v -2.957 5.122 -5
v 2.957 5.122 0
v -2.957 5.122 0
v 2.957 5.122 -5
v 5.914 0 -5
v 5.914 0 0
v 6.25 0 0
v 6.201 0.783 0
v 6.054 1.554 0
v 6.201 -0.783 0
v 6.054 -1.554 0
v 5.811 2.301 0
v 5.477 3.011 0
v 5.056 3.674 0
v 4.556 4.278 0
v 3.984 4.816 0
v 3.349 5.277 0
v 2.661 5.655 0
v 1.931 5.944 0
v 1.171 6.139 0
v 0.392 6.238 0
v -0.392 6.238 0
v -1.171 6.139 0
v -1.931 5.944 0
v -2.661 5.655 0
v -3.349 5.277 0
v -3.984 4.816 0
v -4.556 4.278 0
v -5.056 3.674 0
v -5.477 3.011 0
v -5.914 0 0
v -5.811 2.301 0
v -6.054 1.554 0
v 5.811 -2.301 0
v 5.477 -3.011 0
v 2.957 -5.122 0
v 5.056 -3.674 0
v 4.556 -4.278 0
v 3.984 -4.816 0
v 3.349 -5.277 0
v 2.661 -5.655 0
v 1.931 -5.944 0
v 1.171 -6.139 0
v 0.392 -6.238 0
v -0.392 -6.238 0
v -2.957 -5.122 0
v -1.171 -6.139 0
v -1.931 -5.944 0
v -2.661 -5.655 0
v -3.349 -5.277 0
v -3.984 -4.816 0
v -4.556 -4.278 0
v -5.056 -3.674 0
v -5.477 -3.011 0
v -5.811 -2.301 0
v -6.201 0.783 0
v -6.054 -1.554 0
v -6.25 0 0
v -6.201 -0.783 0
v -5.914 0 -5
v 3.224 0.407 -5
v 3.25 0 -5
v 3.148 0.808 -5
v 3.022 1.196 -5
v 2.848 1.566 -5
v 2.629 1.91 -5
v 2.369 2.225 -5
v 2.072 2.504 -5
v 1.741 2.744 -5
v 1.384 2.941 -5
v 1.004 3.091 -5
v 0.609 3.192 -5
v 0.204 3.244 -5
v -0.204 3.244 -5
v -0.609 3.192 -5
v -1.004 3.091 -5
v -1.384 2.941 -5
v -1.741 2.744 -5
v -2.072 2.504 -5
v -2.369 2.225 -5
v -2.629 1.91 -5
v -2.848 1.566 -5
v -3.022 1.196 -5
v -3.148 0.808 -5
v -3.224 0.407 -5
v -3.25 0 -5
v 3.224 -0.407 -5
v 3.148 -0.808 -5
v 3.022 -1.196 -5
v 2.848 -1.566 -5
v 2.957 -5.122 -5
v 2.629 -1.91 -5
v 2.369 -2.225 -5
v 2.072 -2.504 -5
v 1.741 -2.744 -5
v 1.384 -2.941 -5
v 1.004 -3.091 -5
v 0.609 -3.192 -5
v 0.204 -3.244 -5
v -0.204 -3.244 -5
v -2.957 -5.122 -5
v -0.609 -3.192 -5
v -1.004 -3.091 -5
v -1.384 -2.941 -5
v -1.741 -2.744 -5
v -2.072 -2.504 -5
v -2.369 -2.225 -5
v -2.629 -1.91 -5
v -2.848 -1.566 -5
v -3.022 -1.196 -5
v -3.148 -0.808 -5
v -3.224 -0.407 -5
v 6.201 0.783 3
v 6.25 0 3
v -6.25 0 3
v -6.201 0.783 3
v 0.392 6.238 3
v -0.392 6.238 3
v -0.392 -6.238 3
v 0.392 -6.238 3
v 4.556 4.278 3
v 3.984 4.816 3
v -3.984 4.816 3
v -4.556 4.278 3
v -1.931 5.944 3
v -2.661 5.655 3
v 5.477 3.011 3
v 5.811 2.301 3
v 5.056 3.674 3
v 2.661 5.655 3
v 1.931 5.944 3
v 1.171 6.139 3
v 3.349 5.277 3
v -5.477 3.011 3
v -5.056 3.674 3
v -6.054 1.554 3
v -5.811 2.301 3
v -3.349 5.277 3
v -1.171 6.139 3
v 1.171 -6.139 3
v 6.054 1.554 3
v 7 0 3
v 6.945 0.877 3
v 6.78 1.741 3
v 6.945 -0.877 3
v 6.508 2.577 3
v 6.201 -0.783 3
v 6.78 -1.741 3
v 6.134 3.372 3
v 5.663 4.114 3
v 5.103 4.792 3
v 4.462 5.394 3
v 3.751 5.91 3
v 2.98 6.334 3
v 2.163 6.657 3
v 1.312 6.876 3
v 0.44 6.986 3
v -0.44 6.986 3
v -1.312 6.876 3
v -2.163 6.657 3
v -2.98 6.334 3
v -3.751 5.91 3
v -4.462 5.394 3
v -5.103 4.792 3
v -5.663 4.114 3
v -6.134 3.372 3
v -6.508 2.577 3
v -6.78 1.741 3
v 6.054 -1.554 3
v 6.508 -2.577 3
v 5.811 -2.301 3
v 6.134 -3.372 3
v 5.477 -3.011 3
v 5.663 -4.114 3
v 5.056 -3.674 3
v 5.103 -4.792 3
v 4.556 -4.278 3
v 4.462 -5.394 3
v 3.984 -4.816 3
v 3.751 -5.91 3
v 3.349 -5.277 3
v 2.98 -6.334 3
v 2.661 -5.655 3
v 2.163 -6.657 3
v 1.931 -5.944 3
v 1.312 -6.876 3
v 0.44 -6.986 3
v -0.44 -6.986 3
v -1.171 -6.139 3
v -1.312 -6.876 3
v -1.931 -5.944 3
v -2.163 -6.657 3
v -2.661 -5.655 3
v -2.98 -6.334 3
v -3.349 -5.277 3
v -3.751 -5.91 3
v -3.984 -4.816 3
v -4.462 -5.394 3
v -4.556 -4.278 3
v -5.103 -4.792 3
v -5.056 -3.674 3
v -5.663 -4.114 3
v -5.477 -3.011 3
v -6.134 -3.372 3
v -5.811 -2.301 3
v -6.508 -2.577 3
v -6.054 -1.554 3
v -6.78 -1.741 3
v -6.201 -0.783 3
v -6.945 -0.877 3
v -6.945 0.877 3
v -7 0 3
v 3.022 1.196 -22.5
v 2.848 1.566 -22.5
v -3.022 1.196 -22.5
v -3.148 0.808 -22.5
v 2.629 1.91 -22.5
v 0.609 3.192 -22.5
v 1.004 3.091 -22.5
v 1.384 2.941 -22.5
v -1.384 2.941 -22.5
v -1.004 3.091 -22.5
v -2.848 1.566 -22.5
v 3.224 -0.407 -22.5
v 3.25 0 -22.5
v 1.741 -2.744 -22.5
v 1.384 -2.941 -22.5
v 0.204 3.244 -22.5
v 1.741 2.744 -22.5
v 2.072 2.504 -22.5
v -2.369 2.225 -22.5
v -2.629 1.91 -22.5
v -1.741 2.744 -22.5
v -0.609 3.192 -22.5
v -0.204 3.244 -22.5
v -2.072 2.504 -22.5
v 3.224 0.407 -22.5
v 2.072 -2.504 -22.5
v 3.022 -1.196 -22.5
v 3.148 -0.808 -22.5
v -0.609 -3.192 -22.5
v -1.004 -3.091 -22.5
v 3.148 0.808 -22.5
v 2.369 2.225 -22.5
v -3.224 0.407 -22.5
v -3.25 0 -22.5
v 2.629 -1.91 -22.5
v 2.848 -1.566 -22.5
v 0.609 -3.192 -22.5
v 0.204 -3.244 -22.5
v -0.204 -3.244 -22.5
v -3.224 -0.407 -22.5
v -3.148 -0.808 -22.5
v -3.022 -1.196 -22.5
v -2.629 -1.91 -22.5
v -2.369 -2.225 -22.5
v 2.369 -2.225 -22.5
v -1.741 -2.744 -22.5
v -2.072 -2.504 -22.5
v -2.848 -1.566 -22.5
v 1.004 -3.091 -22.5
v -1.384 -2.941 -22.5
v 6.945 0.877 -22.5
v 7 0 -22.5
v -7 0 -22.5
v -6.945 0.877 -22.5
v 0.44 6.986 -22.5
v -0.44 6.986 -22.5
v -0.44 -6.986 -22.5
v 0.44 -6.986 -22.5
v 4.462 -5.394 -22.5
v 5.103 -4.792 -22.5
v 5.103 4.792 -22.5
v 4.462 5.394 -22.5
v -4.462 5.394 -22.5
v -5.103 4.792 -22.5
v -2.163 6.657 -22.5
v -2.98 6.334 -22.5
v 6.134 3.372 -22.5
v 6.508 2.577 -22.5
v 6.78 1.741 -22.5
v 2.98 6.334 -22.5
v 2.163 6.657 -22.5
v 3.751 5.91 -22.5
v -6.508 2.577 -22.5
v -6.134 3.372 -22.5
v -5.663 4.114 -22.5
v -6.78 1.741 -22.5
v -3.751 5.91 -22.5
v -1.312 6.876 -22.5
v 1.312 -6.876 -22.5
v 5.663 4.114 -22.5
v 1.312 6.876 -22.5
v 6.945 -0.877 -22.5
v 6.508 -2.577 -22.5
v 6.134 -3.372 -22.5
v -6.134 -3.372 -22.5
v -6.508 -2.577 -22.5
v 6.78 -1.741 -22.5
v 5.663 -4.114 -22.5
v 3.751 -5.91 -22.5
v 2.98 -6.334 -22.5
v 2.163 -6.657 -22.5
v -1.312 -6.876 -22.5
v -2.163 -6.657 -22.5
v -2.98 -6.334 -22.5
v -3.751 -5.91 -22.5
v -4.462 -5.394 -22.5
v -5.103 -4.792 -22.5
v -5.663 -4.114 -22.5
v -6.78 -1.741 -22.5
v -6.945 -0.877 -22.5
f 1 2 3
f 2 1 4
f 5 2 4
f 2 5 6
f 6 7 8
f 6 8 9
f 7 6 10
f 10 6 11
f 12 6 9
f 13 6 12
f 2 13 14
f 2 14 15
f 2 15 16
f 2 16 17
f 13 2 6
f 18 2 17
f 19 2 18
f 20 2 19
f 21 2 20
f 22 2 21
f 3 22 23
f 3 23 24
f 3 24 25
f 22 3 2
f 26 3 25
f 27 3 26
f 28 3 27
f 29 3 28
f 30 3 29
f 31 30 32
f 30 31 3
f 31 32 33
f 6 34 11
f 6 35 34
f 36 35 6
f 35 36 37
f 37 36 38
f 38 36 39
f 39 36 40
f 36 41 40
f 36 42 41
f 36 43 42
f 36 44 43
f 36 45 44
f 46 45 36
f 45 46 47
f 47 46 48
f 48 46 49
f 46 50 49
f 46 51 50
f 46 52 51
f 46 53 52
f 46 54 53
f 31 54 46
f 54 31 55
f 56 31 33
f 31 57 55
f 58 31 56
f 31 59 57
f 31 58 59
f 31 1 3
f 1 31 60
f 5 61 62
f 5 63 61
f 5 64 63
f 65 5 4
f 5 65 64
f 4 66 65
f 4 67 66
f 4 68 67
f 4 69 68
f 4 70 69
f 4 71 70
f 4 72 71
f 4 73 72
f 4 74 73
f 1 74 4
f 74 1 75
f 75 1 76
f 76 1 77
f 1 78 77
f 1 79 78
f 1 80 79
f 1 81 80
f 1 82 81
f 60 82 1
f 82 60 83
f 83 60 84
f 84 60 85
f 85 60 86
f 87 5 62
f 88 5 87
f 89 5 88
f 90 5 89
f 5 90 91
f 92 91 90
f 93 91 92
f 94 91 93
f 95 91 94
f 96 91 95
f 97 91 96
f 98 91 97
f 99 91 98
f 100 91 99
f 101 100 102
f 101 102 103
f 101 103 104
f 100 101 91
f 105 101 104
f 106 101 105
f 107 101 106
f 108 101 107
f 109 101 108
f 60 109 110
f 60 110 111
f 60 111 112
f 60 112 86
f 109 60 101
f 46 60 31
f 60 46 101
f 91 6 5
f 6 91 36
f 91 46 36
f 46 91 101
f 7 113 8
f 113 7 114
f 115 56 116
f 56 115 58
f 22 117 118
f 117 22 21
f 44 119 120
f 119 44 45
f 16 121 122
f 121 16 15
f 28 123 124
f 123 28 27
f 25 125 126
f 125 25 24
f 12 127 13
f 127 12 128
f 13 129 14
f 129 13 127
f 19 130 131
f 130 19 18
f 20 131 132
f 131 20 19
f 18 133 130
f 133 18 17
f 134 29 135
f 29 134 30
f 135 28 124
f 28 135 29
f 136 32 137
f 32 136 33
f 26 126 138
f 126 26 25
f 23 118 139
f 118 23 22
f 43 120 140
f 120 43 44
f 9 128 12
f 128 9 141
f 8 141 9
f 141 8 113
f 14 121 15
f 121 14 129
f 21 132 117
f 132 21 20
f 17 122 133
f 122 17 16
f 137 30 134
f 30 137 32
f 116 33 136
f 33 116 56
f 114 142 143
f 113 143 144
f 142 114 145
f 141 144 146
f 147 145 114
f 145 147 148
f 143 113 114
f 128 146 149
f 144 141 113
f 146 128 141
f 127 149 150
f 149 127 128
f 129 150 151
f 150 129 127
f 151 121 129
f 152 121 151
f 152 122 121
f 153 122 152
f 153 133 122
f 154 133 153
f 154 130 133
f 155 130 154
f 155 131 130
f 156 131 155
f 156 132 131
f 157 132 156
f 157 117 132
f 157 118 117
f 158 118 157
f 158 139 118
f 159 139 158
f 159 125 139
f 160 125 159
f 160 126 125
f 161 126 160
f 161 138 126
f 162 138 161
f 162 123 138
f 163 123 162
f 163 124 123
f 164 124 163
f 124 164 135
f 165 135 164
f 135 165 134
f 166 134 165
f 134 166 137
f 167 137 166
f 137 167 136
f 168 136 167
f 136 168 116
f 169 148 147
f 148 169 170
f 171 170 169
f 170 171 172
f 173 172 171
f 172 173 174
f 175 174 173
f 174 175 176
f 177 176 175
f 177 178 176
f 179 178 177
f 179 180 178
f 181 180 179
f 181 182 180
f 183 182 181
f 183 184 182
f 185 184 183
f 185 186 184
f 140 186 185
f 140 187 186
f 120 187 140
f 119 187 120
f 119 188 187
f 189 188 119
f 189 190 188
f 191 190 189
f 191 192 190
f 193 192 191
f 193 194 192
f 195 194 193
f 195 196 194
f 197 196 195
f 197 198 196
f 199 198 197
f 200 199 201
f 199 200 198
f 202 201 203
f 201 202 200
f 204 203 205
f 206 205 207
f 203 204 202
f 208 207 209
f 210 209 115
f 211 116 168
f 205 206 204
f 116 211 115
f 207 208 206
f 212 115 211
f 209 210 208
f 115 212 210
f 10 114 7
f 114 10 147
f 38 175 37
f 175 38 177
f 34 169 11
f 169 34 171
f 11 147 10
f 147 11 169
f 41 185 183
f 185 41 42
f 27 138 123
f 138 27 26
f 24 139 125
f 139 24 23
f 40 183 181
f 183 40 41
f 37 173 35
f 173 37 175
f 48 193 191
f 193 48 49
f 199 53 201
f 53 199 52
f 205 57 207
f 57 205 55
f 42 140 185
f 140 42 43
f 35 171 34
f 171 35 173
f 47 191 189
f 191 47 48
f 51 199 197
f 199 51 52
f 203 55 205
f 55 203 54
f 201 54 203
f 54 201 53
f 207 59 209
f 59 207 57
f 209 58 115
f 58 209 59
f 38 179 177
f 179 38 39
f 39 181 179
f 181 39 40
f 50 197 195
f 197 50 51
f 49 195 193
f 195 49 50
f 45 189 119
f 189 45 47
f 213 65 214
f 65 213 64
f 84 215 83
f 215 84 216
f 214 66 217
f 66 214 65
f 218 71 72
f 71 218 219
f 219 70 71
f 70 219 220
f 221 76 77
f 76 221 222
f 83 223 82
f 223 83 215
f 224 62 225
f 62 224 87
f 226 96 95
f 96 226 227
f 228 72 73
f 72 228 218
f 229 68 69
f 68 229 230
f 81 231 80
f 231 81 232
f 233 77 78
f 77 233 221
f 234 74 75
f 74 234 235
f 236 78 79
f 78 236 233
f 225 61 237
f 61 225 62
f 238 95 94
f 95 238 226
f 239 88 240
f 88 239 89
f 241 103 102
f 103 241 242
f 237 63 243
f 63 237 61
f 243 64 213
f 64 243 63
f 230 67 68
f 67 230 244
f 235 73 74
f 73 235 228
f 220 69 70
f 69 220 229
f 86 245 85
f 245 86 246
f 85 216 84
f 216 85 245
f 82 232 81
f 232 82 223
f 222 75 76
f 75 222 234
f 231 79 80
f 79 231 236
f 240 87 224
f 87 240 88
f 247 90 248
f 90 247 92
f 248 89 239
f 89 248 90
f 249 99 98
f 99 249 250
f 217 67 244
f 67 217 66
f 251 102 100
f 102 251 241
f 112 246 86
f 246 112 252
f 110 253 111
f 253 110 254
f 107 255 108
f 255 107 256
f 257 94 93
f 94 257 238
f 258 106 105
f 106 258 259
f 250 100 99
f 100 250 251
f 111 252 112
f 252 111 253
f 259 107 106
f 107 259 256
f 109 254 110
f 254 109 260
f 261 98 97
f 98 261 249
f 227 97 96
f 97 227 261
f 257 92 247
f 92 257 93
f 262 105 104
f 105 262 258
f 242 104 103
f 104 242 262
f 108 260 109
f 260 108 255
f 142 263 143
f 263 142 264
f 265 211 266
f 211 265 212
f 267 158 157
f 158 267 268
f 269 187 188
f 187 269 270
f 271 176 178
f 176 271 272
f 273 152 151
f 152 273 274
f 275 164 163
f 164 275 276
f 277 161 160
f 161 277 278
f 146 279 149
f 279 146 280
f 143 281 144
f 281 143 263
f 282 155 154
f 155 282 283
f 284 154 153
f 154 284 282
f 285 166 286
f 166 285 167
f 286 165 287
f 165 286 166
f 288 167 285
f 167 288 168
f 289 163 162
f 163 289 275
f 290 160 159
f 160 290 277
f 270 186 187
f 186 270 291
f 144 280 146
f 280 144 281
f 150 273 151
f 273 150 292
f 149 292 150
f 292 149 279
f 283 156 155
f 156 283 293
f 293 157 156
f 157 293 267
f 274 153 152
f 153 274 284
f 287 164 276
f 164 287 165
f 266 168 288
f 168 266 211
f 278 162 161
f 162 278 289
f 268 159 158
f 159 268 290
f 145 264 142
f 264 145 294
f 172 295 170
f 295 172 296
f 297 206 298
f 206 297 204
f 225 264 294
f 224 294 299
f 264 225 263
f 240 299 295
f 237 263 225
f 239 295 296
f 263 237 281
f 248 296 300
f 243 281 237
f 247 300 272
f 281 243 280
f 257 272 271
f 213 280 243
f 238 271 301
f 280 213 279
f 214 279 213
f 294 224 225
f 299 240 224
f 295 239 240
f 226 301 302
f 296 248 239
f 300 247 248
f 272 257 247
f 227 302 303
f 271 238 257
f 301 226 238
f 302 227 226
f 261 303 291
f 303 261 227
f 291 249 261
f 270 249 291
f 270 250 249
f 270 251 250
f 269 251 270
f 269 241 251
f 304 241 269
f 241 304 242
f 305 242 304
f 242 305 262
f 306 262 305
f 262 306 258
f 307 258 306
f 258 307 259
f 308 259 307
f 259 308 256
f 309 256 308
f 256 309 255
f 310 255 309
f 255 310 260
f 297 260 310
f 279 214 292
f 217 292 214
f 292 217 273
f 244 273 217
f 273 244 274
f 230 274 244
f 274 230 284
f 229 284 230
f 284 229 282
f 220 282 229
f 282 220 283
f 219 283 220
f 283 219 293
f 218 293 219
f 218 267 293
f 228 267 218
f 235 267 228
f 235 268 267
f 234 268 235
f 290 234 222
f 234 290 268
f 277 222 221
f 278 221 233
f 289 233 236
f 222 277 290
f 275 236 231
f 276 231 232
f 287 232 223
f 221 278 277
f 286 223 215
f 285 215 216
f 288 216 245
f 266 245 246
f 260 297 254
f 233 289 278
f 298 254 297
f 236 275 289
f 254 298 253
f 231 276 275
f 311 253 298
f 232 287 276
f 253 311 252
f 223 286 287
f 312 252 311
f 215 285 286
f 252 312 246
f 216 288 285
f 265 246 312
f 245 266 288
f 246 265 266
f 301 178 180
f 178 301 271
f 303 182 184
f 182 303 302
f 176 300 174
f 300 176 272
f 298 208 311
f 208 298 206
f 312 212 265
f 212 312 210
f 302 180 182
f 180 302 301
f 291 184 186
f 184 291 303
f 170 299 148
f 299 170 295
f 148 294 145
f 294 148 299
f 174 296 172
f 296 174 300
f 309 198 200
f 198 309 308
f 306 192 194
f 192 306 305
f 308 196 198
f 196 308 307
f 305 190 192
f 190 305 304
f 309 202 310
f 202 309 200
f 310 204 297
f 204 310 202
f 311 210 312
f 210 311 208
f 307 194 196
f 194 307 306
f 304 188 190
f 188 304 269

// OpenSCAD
$fn = 50;


difference() {
	union() {
		translate(v = [0, 0, -22.5000000000]) {
			cylinder(h = 25.5000000000, r = 7.0000000000);
		}
	}
	union() {
		translate(v = [0, 0, 0]) {
			rotate(a = [0, 0, 0]) {
				difference() {
					union() {
						translate(v = [0, 0, -5]) {
							linear_extrude(height = 5) {
								polygon(points = [[5.9142500000, 0.0000000000], [2.9571250000, 5.1218907443], [-2.9571250000, 5.1218907443], [-5.9142500000, 0.0000000000], [-2.9571250000, -5.1218907443], [2.9571250000, -5.1218907443]]);
							}
						}
					}
					union();
				}
			}
		}
		#cylinder(h = 3, r = 6.2500000000);
		#translate(v = [0, 0, -100.0000000000]) {
			cylinder(h = 200, r = 3.2500000000);
		}
	}
}
